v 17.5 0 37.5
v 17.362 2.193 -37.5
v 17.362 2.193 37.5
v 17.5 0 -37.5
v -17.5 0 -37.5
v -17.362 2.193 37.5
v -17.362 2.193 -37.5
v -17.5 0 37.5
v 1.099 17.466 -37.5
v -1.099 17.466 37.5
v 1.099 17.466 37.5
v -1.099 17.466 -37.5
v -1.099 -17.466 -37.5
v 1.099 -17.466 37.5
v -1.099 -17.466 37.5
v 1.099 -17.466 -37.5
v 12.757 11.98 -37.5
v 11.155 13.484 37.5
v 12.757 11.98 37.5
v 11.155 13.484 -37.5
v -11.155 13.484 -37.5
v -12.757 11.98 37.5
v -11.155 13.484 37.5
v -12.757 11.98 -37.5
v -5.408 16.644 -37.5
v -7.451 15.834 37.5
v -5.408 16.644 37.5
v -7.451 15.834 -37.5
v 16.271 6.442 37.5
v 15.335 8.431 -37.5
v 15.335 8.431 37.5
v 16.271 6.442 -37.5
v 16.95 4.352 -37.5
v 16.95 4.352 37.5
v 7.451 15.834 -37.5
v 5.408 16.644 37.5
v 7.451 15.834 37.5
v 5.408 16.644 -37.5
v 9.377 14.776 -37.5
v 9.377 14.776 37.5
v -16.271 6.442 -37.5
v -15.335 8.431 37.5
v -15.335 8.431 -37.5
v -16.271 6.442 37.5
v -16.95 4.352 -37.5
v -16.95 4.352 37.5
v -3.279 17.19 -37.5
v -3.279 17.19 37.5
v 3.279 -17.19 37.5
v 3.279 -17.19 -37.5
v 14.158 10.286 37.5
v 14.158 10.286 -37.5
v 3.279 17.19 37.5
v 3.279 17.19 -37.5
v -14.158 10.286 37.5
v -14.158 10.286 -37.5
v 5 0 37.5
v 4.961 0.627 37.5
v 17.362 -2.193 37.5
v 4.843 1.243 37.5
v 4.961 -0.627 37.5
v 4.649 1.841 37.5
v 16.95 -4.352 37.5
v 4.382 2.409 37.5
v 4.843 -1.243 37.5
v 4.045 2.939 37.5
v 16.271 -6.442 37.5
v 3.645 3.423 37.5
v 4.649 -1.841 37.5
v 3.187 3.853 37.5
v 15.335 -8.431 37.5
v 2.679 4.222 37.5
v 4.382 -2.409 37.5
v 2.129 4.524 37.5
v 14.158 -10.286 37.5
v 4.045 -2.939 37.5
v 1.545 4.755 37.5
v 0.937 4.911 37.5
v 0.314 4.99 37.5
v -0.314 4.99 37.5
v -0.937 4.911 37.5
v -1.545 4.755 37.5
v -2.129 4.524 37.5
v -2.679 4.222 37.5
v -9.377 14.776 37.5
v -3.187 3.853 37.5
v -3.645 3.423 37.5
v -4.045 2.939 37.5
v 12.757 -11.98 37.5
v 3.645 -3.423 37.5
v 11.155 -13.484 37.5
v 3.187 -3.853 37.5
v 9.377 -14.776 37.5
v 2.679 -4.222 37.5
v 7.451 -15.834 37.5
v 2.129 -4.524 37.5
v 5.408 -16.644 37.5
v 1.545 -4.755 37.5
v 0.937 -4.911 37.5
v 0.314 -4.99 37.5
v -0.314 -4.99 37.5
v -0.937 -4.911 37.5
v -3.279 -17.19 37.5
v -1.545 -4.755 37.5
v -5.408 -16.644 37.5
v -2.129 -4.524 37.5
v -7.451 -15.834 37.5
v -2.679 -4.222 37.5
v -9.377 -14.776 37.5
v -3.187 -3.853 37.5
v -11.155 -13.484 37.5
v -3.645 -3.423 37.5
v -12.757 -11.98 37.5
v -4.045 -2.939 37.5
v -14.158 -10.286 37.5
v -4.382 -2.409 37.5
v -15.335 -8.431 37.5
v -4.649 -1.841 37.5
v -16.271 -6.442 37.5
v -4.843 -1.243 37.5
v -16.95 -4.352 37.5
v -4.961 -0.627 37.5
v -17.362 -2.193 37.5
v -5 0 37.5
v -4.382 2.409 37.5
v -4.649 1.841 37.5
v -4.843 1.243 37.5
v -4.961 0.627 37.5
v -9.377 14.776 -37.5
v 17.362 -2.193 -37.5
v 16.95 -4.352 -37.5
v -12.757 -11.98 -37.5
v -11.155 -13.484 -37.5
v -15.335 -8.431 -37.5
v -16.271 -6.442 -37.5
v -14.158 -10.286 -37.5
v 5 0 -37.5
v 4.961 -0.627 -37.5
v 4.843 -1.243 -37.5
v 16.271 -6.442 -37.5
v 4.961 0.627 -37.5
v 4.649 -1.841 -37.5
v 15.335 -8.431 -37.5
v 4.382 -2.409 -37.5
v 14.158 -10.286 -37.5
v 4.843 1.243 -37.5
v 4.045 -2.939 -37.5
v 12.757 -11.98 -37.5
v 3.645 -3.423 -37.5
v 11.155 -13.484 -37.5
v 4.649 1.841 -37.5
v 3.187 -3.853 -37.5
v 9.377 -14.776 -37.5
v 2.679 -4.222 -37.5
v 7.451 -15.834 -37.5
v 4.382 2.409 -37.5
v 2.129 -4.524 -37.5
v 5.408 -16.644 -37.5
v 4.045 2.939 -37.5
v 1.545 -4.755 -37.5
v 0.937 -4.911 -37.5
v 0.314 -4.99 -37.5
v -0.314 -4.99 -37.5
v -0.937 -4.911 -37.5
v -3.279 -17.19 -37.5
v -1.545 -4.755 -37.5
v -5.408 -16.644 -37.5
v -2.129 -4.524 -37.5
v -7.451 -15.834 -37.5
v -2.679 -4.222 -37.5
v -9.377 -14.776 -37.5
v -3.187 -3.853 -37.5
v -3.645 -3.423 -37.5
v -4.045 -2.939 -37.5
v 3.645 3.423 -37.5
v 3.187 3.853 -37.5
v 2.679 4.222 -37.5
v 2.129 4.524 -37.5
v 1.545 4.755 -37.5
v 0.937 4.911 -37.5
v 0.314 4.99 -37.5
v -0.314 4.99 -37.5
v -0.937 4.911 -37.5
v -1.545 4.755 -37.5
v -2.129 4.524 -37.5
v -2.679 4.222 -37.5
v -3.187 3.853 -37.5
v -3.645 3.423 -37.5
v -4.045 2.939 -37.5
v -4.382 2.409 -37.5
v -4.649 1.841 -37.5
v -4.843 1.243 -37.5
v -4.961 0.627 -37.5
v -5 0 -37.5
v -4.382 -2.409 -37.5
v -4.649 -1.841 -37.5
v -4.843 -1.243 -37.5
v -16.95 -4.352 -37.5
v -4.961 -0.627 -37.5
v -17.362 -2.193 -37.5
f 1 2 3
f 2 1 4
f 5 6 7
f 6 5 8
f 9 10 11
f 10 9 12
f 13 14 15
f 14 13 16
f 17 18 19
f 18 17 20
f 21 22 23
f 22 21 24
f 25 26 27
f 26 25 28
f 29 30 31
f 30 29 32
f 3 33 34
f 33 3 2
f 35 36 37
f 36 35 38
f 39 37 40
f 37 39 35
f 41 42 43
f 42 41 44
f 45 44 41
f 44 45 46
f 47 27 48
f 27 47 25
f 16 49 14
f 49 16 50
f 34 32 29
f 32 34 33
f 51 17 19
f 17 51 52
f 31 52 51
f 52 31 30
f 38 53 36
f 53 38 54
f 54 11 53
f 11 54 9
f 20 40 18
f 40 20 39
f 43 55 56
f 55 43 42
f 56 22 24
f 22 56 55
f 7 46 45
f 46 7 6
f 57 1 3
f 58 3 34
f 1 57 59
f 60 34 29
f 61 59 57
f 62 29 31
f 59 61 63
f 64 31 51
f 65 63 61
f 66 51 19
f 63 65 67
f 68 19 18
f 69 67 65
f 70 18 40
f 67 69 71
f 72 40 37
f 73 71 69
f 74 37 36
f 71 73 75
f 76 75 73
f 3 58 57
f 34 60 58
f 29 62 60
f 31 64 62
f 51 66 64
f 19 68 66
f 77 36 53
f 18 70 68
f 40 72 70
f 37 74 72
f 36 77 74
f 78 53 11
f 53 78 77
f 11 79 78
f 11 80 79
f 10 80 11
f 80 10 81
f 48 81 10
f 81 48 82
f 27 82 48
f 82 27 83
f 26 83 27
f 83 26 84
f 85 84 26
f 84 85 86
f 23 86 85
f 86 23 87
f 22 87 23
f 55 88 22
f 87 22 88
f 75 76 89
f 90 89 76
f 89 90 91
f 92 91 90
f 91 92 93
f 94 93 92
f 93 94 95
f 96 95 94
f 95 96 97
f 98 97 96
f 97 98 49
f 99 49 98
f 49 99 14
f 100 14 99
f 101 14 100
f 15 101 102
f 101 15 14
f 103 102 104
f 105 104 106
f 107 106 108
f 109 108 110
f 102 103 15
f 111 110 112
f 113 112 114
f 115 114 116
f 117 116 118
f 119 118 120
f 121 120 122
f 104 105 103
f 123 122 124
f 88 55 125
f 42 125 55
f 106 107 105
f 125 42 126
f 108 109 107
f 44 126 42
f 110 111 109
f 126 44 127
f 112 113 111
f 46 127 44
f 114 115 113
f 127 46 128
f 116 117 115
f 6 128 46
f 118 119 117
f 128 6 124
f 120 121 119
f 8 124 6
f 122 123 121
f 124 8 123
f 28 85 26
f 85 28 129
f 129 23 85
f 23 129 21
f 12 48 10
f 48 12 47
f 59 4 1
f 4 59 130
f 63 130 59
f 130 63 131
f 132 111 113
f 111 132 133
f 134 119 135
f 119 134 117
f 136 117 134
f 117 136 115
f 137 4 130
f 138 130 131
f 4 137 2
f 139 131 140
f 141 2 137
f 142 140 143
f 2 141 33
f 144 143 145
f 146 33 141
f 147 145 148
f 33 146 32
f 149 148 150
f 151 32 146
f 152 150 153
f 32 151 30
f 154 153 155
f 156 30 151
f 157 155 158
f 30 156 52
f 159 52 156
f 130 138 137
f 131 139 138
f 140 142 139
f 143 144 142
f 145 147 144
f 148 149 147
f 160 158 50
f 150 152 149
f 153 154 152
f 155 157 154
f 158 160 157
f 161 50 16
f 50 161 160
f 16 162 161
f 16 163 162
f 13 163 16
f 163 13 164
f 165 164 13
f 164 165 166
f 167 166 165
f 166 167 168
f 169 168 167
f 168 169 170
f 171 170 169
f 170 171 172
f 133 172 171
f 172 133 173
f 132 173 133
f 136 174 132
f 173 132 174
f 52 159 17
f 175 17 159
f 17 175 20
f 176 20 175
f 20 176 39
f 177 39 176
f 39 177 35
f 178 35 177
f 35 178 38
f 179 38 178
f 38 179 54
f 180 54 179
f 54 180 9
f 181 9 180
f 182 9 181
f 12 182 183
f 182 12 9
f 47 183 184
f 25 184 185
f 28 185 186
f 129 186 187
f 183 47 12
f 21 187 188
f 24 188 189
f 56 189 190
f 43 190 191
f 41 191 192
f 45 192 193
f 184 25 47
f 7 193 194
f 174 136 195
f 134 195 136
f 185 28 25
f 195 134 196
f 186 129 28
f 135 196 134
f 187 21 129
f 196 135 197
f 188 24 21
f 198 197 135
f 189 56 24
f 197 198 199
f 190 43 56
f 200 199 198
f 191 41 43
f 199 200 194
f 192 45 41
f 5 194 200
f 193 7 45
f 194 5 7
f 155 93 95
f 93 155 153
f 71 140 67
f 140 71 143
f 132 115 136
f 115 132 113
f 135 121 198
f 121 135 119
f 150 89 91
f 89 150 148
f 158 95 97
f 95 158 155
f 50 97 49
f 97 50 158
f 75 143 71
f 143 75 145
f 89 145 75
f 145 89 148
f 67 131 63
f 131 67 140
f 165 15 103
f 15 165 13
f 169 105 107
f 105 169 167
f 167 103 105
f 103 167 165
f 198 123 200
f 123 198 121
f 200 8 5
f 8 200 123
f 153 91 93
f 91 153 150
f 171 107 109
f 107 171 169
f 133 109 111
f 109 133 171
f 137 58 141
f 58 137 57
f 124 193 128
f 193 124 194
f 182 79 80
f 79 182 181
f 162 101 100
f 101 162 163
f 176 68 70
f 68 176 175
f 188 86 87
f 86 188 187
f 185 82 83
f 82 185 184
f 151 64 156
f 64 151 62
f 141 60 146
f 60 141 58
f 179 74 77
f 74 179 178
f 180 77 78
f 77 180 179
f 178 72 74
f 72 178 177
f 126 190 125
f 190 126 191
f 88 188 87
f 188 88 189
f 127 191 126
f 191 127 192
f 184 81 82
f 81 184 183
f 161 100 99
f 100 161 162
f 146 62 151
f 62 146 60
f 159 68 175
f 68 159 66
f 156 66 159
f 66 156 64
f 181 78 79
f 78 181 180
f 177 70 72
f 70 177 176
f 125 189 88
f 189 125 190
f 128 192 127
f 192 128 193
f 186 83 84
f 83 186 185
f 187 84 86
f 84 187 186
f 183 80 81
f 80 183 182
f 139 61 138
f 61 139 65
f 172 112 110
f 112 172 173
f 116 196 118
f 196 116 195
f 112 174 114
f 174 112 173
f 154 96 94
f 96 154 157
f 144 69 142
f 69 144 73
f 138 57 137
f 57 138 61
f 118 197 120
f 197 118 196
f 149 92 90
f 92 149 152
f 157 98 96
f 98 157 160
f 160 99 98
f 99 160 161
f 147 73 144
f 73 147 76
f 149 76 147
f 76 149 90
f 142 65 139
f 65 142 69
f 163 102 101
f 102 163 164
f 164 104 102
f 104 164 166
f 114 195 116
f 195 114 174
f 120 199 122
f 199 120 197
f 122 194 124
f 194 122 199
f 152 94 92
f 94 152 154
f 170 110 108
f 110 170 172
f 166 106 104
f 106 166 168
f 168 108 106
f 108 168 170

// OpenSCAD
$fn = 50;


difference() {
	union() {
		translate(v = [0, 0, -37.5000000000]) {
			cylinder(h = 75, r = 17.5000000000);
		}
	}
	union() {
		translate(v = [0, 0, -100.0000000000]) {
			cylinder(h = 200, r = 5);
		}
	}
}
